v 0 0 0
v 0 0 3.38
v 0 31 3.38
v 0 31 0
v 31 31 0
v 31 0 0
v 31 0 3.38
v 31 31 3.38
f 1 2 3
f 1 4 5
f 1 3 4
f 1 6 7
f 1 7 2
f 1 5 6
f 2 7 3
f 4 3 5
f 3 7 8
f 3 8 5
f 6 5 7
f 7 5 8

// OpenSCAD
/* Warning, this is a very basic generator with a lot of approximation 
input data : [BFBGA, 6VC, 31x31x3.38mm, 1330, , A, C04-25077A]
generated by com.zoubworld.electronics.cad.model3d.Basic
Date : Sun Feb 15 10:50:49 CET 2026
*/

//body
color("black")
translate([0,0,0])
cube([31.0,31.0,3.38], center=false);
